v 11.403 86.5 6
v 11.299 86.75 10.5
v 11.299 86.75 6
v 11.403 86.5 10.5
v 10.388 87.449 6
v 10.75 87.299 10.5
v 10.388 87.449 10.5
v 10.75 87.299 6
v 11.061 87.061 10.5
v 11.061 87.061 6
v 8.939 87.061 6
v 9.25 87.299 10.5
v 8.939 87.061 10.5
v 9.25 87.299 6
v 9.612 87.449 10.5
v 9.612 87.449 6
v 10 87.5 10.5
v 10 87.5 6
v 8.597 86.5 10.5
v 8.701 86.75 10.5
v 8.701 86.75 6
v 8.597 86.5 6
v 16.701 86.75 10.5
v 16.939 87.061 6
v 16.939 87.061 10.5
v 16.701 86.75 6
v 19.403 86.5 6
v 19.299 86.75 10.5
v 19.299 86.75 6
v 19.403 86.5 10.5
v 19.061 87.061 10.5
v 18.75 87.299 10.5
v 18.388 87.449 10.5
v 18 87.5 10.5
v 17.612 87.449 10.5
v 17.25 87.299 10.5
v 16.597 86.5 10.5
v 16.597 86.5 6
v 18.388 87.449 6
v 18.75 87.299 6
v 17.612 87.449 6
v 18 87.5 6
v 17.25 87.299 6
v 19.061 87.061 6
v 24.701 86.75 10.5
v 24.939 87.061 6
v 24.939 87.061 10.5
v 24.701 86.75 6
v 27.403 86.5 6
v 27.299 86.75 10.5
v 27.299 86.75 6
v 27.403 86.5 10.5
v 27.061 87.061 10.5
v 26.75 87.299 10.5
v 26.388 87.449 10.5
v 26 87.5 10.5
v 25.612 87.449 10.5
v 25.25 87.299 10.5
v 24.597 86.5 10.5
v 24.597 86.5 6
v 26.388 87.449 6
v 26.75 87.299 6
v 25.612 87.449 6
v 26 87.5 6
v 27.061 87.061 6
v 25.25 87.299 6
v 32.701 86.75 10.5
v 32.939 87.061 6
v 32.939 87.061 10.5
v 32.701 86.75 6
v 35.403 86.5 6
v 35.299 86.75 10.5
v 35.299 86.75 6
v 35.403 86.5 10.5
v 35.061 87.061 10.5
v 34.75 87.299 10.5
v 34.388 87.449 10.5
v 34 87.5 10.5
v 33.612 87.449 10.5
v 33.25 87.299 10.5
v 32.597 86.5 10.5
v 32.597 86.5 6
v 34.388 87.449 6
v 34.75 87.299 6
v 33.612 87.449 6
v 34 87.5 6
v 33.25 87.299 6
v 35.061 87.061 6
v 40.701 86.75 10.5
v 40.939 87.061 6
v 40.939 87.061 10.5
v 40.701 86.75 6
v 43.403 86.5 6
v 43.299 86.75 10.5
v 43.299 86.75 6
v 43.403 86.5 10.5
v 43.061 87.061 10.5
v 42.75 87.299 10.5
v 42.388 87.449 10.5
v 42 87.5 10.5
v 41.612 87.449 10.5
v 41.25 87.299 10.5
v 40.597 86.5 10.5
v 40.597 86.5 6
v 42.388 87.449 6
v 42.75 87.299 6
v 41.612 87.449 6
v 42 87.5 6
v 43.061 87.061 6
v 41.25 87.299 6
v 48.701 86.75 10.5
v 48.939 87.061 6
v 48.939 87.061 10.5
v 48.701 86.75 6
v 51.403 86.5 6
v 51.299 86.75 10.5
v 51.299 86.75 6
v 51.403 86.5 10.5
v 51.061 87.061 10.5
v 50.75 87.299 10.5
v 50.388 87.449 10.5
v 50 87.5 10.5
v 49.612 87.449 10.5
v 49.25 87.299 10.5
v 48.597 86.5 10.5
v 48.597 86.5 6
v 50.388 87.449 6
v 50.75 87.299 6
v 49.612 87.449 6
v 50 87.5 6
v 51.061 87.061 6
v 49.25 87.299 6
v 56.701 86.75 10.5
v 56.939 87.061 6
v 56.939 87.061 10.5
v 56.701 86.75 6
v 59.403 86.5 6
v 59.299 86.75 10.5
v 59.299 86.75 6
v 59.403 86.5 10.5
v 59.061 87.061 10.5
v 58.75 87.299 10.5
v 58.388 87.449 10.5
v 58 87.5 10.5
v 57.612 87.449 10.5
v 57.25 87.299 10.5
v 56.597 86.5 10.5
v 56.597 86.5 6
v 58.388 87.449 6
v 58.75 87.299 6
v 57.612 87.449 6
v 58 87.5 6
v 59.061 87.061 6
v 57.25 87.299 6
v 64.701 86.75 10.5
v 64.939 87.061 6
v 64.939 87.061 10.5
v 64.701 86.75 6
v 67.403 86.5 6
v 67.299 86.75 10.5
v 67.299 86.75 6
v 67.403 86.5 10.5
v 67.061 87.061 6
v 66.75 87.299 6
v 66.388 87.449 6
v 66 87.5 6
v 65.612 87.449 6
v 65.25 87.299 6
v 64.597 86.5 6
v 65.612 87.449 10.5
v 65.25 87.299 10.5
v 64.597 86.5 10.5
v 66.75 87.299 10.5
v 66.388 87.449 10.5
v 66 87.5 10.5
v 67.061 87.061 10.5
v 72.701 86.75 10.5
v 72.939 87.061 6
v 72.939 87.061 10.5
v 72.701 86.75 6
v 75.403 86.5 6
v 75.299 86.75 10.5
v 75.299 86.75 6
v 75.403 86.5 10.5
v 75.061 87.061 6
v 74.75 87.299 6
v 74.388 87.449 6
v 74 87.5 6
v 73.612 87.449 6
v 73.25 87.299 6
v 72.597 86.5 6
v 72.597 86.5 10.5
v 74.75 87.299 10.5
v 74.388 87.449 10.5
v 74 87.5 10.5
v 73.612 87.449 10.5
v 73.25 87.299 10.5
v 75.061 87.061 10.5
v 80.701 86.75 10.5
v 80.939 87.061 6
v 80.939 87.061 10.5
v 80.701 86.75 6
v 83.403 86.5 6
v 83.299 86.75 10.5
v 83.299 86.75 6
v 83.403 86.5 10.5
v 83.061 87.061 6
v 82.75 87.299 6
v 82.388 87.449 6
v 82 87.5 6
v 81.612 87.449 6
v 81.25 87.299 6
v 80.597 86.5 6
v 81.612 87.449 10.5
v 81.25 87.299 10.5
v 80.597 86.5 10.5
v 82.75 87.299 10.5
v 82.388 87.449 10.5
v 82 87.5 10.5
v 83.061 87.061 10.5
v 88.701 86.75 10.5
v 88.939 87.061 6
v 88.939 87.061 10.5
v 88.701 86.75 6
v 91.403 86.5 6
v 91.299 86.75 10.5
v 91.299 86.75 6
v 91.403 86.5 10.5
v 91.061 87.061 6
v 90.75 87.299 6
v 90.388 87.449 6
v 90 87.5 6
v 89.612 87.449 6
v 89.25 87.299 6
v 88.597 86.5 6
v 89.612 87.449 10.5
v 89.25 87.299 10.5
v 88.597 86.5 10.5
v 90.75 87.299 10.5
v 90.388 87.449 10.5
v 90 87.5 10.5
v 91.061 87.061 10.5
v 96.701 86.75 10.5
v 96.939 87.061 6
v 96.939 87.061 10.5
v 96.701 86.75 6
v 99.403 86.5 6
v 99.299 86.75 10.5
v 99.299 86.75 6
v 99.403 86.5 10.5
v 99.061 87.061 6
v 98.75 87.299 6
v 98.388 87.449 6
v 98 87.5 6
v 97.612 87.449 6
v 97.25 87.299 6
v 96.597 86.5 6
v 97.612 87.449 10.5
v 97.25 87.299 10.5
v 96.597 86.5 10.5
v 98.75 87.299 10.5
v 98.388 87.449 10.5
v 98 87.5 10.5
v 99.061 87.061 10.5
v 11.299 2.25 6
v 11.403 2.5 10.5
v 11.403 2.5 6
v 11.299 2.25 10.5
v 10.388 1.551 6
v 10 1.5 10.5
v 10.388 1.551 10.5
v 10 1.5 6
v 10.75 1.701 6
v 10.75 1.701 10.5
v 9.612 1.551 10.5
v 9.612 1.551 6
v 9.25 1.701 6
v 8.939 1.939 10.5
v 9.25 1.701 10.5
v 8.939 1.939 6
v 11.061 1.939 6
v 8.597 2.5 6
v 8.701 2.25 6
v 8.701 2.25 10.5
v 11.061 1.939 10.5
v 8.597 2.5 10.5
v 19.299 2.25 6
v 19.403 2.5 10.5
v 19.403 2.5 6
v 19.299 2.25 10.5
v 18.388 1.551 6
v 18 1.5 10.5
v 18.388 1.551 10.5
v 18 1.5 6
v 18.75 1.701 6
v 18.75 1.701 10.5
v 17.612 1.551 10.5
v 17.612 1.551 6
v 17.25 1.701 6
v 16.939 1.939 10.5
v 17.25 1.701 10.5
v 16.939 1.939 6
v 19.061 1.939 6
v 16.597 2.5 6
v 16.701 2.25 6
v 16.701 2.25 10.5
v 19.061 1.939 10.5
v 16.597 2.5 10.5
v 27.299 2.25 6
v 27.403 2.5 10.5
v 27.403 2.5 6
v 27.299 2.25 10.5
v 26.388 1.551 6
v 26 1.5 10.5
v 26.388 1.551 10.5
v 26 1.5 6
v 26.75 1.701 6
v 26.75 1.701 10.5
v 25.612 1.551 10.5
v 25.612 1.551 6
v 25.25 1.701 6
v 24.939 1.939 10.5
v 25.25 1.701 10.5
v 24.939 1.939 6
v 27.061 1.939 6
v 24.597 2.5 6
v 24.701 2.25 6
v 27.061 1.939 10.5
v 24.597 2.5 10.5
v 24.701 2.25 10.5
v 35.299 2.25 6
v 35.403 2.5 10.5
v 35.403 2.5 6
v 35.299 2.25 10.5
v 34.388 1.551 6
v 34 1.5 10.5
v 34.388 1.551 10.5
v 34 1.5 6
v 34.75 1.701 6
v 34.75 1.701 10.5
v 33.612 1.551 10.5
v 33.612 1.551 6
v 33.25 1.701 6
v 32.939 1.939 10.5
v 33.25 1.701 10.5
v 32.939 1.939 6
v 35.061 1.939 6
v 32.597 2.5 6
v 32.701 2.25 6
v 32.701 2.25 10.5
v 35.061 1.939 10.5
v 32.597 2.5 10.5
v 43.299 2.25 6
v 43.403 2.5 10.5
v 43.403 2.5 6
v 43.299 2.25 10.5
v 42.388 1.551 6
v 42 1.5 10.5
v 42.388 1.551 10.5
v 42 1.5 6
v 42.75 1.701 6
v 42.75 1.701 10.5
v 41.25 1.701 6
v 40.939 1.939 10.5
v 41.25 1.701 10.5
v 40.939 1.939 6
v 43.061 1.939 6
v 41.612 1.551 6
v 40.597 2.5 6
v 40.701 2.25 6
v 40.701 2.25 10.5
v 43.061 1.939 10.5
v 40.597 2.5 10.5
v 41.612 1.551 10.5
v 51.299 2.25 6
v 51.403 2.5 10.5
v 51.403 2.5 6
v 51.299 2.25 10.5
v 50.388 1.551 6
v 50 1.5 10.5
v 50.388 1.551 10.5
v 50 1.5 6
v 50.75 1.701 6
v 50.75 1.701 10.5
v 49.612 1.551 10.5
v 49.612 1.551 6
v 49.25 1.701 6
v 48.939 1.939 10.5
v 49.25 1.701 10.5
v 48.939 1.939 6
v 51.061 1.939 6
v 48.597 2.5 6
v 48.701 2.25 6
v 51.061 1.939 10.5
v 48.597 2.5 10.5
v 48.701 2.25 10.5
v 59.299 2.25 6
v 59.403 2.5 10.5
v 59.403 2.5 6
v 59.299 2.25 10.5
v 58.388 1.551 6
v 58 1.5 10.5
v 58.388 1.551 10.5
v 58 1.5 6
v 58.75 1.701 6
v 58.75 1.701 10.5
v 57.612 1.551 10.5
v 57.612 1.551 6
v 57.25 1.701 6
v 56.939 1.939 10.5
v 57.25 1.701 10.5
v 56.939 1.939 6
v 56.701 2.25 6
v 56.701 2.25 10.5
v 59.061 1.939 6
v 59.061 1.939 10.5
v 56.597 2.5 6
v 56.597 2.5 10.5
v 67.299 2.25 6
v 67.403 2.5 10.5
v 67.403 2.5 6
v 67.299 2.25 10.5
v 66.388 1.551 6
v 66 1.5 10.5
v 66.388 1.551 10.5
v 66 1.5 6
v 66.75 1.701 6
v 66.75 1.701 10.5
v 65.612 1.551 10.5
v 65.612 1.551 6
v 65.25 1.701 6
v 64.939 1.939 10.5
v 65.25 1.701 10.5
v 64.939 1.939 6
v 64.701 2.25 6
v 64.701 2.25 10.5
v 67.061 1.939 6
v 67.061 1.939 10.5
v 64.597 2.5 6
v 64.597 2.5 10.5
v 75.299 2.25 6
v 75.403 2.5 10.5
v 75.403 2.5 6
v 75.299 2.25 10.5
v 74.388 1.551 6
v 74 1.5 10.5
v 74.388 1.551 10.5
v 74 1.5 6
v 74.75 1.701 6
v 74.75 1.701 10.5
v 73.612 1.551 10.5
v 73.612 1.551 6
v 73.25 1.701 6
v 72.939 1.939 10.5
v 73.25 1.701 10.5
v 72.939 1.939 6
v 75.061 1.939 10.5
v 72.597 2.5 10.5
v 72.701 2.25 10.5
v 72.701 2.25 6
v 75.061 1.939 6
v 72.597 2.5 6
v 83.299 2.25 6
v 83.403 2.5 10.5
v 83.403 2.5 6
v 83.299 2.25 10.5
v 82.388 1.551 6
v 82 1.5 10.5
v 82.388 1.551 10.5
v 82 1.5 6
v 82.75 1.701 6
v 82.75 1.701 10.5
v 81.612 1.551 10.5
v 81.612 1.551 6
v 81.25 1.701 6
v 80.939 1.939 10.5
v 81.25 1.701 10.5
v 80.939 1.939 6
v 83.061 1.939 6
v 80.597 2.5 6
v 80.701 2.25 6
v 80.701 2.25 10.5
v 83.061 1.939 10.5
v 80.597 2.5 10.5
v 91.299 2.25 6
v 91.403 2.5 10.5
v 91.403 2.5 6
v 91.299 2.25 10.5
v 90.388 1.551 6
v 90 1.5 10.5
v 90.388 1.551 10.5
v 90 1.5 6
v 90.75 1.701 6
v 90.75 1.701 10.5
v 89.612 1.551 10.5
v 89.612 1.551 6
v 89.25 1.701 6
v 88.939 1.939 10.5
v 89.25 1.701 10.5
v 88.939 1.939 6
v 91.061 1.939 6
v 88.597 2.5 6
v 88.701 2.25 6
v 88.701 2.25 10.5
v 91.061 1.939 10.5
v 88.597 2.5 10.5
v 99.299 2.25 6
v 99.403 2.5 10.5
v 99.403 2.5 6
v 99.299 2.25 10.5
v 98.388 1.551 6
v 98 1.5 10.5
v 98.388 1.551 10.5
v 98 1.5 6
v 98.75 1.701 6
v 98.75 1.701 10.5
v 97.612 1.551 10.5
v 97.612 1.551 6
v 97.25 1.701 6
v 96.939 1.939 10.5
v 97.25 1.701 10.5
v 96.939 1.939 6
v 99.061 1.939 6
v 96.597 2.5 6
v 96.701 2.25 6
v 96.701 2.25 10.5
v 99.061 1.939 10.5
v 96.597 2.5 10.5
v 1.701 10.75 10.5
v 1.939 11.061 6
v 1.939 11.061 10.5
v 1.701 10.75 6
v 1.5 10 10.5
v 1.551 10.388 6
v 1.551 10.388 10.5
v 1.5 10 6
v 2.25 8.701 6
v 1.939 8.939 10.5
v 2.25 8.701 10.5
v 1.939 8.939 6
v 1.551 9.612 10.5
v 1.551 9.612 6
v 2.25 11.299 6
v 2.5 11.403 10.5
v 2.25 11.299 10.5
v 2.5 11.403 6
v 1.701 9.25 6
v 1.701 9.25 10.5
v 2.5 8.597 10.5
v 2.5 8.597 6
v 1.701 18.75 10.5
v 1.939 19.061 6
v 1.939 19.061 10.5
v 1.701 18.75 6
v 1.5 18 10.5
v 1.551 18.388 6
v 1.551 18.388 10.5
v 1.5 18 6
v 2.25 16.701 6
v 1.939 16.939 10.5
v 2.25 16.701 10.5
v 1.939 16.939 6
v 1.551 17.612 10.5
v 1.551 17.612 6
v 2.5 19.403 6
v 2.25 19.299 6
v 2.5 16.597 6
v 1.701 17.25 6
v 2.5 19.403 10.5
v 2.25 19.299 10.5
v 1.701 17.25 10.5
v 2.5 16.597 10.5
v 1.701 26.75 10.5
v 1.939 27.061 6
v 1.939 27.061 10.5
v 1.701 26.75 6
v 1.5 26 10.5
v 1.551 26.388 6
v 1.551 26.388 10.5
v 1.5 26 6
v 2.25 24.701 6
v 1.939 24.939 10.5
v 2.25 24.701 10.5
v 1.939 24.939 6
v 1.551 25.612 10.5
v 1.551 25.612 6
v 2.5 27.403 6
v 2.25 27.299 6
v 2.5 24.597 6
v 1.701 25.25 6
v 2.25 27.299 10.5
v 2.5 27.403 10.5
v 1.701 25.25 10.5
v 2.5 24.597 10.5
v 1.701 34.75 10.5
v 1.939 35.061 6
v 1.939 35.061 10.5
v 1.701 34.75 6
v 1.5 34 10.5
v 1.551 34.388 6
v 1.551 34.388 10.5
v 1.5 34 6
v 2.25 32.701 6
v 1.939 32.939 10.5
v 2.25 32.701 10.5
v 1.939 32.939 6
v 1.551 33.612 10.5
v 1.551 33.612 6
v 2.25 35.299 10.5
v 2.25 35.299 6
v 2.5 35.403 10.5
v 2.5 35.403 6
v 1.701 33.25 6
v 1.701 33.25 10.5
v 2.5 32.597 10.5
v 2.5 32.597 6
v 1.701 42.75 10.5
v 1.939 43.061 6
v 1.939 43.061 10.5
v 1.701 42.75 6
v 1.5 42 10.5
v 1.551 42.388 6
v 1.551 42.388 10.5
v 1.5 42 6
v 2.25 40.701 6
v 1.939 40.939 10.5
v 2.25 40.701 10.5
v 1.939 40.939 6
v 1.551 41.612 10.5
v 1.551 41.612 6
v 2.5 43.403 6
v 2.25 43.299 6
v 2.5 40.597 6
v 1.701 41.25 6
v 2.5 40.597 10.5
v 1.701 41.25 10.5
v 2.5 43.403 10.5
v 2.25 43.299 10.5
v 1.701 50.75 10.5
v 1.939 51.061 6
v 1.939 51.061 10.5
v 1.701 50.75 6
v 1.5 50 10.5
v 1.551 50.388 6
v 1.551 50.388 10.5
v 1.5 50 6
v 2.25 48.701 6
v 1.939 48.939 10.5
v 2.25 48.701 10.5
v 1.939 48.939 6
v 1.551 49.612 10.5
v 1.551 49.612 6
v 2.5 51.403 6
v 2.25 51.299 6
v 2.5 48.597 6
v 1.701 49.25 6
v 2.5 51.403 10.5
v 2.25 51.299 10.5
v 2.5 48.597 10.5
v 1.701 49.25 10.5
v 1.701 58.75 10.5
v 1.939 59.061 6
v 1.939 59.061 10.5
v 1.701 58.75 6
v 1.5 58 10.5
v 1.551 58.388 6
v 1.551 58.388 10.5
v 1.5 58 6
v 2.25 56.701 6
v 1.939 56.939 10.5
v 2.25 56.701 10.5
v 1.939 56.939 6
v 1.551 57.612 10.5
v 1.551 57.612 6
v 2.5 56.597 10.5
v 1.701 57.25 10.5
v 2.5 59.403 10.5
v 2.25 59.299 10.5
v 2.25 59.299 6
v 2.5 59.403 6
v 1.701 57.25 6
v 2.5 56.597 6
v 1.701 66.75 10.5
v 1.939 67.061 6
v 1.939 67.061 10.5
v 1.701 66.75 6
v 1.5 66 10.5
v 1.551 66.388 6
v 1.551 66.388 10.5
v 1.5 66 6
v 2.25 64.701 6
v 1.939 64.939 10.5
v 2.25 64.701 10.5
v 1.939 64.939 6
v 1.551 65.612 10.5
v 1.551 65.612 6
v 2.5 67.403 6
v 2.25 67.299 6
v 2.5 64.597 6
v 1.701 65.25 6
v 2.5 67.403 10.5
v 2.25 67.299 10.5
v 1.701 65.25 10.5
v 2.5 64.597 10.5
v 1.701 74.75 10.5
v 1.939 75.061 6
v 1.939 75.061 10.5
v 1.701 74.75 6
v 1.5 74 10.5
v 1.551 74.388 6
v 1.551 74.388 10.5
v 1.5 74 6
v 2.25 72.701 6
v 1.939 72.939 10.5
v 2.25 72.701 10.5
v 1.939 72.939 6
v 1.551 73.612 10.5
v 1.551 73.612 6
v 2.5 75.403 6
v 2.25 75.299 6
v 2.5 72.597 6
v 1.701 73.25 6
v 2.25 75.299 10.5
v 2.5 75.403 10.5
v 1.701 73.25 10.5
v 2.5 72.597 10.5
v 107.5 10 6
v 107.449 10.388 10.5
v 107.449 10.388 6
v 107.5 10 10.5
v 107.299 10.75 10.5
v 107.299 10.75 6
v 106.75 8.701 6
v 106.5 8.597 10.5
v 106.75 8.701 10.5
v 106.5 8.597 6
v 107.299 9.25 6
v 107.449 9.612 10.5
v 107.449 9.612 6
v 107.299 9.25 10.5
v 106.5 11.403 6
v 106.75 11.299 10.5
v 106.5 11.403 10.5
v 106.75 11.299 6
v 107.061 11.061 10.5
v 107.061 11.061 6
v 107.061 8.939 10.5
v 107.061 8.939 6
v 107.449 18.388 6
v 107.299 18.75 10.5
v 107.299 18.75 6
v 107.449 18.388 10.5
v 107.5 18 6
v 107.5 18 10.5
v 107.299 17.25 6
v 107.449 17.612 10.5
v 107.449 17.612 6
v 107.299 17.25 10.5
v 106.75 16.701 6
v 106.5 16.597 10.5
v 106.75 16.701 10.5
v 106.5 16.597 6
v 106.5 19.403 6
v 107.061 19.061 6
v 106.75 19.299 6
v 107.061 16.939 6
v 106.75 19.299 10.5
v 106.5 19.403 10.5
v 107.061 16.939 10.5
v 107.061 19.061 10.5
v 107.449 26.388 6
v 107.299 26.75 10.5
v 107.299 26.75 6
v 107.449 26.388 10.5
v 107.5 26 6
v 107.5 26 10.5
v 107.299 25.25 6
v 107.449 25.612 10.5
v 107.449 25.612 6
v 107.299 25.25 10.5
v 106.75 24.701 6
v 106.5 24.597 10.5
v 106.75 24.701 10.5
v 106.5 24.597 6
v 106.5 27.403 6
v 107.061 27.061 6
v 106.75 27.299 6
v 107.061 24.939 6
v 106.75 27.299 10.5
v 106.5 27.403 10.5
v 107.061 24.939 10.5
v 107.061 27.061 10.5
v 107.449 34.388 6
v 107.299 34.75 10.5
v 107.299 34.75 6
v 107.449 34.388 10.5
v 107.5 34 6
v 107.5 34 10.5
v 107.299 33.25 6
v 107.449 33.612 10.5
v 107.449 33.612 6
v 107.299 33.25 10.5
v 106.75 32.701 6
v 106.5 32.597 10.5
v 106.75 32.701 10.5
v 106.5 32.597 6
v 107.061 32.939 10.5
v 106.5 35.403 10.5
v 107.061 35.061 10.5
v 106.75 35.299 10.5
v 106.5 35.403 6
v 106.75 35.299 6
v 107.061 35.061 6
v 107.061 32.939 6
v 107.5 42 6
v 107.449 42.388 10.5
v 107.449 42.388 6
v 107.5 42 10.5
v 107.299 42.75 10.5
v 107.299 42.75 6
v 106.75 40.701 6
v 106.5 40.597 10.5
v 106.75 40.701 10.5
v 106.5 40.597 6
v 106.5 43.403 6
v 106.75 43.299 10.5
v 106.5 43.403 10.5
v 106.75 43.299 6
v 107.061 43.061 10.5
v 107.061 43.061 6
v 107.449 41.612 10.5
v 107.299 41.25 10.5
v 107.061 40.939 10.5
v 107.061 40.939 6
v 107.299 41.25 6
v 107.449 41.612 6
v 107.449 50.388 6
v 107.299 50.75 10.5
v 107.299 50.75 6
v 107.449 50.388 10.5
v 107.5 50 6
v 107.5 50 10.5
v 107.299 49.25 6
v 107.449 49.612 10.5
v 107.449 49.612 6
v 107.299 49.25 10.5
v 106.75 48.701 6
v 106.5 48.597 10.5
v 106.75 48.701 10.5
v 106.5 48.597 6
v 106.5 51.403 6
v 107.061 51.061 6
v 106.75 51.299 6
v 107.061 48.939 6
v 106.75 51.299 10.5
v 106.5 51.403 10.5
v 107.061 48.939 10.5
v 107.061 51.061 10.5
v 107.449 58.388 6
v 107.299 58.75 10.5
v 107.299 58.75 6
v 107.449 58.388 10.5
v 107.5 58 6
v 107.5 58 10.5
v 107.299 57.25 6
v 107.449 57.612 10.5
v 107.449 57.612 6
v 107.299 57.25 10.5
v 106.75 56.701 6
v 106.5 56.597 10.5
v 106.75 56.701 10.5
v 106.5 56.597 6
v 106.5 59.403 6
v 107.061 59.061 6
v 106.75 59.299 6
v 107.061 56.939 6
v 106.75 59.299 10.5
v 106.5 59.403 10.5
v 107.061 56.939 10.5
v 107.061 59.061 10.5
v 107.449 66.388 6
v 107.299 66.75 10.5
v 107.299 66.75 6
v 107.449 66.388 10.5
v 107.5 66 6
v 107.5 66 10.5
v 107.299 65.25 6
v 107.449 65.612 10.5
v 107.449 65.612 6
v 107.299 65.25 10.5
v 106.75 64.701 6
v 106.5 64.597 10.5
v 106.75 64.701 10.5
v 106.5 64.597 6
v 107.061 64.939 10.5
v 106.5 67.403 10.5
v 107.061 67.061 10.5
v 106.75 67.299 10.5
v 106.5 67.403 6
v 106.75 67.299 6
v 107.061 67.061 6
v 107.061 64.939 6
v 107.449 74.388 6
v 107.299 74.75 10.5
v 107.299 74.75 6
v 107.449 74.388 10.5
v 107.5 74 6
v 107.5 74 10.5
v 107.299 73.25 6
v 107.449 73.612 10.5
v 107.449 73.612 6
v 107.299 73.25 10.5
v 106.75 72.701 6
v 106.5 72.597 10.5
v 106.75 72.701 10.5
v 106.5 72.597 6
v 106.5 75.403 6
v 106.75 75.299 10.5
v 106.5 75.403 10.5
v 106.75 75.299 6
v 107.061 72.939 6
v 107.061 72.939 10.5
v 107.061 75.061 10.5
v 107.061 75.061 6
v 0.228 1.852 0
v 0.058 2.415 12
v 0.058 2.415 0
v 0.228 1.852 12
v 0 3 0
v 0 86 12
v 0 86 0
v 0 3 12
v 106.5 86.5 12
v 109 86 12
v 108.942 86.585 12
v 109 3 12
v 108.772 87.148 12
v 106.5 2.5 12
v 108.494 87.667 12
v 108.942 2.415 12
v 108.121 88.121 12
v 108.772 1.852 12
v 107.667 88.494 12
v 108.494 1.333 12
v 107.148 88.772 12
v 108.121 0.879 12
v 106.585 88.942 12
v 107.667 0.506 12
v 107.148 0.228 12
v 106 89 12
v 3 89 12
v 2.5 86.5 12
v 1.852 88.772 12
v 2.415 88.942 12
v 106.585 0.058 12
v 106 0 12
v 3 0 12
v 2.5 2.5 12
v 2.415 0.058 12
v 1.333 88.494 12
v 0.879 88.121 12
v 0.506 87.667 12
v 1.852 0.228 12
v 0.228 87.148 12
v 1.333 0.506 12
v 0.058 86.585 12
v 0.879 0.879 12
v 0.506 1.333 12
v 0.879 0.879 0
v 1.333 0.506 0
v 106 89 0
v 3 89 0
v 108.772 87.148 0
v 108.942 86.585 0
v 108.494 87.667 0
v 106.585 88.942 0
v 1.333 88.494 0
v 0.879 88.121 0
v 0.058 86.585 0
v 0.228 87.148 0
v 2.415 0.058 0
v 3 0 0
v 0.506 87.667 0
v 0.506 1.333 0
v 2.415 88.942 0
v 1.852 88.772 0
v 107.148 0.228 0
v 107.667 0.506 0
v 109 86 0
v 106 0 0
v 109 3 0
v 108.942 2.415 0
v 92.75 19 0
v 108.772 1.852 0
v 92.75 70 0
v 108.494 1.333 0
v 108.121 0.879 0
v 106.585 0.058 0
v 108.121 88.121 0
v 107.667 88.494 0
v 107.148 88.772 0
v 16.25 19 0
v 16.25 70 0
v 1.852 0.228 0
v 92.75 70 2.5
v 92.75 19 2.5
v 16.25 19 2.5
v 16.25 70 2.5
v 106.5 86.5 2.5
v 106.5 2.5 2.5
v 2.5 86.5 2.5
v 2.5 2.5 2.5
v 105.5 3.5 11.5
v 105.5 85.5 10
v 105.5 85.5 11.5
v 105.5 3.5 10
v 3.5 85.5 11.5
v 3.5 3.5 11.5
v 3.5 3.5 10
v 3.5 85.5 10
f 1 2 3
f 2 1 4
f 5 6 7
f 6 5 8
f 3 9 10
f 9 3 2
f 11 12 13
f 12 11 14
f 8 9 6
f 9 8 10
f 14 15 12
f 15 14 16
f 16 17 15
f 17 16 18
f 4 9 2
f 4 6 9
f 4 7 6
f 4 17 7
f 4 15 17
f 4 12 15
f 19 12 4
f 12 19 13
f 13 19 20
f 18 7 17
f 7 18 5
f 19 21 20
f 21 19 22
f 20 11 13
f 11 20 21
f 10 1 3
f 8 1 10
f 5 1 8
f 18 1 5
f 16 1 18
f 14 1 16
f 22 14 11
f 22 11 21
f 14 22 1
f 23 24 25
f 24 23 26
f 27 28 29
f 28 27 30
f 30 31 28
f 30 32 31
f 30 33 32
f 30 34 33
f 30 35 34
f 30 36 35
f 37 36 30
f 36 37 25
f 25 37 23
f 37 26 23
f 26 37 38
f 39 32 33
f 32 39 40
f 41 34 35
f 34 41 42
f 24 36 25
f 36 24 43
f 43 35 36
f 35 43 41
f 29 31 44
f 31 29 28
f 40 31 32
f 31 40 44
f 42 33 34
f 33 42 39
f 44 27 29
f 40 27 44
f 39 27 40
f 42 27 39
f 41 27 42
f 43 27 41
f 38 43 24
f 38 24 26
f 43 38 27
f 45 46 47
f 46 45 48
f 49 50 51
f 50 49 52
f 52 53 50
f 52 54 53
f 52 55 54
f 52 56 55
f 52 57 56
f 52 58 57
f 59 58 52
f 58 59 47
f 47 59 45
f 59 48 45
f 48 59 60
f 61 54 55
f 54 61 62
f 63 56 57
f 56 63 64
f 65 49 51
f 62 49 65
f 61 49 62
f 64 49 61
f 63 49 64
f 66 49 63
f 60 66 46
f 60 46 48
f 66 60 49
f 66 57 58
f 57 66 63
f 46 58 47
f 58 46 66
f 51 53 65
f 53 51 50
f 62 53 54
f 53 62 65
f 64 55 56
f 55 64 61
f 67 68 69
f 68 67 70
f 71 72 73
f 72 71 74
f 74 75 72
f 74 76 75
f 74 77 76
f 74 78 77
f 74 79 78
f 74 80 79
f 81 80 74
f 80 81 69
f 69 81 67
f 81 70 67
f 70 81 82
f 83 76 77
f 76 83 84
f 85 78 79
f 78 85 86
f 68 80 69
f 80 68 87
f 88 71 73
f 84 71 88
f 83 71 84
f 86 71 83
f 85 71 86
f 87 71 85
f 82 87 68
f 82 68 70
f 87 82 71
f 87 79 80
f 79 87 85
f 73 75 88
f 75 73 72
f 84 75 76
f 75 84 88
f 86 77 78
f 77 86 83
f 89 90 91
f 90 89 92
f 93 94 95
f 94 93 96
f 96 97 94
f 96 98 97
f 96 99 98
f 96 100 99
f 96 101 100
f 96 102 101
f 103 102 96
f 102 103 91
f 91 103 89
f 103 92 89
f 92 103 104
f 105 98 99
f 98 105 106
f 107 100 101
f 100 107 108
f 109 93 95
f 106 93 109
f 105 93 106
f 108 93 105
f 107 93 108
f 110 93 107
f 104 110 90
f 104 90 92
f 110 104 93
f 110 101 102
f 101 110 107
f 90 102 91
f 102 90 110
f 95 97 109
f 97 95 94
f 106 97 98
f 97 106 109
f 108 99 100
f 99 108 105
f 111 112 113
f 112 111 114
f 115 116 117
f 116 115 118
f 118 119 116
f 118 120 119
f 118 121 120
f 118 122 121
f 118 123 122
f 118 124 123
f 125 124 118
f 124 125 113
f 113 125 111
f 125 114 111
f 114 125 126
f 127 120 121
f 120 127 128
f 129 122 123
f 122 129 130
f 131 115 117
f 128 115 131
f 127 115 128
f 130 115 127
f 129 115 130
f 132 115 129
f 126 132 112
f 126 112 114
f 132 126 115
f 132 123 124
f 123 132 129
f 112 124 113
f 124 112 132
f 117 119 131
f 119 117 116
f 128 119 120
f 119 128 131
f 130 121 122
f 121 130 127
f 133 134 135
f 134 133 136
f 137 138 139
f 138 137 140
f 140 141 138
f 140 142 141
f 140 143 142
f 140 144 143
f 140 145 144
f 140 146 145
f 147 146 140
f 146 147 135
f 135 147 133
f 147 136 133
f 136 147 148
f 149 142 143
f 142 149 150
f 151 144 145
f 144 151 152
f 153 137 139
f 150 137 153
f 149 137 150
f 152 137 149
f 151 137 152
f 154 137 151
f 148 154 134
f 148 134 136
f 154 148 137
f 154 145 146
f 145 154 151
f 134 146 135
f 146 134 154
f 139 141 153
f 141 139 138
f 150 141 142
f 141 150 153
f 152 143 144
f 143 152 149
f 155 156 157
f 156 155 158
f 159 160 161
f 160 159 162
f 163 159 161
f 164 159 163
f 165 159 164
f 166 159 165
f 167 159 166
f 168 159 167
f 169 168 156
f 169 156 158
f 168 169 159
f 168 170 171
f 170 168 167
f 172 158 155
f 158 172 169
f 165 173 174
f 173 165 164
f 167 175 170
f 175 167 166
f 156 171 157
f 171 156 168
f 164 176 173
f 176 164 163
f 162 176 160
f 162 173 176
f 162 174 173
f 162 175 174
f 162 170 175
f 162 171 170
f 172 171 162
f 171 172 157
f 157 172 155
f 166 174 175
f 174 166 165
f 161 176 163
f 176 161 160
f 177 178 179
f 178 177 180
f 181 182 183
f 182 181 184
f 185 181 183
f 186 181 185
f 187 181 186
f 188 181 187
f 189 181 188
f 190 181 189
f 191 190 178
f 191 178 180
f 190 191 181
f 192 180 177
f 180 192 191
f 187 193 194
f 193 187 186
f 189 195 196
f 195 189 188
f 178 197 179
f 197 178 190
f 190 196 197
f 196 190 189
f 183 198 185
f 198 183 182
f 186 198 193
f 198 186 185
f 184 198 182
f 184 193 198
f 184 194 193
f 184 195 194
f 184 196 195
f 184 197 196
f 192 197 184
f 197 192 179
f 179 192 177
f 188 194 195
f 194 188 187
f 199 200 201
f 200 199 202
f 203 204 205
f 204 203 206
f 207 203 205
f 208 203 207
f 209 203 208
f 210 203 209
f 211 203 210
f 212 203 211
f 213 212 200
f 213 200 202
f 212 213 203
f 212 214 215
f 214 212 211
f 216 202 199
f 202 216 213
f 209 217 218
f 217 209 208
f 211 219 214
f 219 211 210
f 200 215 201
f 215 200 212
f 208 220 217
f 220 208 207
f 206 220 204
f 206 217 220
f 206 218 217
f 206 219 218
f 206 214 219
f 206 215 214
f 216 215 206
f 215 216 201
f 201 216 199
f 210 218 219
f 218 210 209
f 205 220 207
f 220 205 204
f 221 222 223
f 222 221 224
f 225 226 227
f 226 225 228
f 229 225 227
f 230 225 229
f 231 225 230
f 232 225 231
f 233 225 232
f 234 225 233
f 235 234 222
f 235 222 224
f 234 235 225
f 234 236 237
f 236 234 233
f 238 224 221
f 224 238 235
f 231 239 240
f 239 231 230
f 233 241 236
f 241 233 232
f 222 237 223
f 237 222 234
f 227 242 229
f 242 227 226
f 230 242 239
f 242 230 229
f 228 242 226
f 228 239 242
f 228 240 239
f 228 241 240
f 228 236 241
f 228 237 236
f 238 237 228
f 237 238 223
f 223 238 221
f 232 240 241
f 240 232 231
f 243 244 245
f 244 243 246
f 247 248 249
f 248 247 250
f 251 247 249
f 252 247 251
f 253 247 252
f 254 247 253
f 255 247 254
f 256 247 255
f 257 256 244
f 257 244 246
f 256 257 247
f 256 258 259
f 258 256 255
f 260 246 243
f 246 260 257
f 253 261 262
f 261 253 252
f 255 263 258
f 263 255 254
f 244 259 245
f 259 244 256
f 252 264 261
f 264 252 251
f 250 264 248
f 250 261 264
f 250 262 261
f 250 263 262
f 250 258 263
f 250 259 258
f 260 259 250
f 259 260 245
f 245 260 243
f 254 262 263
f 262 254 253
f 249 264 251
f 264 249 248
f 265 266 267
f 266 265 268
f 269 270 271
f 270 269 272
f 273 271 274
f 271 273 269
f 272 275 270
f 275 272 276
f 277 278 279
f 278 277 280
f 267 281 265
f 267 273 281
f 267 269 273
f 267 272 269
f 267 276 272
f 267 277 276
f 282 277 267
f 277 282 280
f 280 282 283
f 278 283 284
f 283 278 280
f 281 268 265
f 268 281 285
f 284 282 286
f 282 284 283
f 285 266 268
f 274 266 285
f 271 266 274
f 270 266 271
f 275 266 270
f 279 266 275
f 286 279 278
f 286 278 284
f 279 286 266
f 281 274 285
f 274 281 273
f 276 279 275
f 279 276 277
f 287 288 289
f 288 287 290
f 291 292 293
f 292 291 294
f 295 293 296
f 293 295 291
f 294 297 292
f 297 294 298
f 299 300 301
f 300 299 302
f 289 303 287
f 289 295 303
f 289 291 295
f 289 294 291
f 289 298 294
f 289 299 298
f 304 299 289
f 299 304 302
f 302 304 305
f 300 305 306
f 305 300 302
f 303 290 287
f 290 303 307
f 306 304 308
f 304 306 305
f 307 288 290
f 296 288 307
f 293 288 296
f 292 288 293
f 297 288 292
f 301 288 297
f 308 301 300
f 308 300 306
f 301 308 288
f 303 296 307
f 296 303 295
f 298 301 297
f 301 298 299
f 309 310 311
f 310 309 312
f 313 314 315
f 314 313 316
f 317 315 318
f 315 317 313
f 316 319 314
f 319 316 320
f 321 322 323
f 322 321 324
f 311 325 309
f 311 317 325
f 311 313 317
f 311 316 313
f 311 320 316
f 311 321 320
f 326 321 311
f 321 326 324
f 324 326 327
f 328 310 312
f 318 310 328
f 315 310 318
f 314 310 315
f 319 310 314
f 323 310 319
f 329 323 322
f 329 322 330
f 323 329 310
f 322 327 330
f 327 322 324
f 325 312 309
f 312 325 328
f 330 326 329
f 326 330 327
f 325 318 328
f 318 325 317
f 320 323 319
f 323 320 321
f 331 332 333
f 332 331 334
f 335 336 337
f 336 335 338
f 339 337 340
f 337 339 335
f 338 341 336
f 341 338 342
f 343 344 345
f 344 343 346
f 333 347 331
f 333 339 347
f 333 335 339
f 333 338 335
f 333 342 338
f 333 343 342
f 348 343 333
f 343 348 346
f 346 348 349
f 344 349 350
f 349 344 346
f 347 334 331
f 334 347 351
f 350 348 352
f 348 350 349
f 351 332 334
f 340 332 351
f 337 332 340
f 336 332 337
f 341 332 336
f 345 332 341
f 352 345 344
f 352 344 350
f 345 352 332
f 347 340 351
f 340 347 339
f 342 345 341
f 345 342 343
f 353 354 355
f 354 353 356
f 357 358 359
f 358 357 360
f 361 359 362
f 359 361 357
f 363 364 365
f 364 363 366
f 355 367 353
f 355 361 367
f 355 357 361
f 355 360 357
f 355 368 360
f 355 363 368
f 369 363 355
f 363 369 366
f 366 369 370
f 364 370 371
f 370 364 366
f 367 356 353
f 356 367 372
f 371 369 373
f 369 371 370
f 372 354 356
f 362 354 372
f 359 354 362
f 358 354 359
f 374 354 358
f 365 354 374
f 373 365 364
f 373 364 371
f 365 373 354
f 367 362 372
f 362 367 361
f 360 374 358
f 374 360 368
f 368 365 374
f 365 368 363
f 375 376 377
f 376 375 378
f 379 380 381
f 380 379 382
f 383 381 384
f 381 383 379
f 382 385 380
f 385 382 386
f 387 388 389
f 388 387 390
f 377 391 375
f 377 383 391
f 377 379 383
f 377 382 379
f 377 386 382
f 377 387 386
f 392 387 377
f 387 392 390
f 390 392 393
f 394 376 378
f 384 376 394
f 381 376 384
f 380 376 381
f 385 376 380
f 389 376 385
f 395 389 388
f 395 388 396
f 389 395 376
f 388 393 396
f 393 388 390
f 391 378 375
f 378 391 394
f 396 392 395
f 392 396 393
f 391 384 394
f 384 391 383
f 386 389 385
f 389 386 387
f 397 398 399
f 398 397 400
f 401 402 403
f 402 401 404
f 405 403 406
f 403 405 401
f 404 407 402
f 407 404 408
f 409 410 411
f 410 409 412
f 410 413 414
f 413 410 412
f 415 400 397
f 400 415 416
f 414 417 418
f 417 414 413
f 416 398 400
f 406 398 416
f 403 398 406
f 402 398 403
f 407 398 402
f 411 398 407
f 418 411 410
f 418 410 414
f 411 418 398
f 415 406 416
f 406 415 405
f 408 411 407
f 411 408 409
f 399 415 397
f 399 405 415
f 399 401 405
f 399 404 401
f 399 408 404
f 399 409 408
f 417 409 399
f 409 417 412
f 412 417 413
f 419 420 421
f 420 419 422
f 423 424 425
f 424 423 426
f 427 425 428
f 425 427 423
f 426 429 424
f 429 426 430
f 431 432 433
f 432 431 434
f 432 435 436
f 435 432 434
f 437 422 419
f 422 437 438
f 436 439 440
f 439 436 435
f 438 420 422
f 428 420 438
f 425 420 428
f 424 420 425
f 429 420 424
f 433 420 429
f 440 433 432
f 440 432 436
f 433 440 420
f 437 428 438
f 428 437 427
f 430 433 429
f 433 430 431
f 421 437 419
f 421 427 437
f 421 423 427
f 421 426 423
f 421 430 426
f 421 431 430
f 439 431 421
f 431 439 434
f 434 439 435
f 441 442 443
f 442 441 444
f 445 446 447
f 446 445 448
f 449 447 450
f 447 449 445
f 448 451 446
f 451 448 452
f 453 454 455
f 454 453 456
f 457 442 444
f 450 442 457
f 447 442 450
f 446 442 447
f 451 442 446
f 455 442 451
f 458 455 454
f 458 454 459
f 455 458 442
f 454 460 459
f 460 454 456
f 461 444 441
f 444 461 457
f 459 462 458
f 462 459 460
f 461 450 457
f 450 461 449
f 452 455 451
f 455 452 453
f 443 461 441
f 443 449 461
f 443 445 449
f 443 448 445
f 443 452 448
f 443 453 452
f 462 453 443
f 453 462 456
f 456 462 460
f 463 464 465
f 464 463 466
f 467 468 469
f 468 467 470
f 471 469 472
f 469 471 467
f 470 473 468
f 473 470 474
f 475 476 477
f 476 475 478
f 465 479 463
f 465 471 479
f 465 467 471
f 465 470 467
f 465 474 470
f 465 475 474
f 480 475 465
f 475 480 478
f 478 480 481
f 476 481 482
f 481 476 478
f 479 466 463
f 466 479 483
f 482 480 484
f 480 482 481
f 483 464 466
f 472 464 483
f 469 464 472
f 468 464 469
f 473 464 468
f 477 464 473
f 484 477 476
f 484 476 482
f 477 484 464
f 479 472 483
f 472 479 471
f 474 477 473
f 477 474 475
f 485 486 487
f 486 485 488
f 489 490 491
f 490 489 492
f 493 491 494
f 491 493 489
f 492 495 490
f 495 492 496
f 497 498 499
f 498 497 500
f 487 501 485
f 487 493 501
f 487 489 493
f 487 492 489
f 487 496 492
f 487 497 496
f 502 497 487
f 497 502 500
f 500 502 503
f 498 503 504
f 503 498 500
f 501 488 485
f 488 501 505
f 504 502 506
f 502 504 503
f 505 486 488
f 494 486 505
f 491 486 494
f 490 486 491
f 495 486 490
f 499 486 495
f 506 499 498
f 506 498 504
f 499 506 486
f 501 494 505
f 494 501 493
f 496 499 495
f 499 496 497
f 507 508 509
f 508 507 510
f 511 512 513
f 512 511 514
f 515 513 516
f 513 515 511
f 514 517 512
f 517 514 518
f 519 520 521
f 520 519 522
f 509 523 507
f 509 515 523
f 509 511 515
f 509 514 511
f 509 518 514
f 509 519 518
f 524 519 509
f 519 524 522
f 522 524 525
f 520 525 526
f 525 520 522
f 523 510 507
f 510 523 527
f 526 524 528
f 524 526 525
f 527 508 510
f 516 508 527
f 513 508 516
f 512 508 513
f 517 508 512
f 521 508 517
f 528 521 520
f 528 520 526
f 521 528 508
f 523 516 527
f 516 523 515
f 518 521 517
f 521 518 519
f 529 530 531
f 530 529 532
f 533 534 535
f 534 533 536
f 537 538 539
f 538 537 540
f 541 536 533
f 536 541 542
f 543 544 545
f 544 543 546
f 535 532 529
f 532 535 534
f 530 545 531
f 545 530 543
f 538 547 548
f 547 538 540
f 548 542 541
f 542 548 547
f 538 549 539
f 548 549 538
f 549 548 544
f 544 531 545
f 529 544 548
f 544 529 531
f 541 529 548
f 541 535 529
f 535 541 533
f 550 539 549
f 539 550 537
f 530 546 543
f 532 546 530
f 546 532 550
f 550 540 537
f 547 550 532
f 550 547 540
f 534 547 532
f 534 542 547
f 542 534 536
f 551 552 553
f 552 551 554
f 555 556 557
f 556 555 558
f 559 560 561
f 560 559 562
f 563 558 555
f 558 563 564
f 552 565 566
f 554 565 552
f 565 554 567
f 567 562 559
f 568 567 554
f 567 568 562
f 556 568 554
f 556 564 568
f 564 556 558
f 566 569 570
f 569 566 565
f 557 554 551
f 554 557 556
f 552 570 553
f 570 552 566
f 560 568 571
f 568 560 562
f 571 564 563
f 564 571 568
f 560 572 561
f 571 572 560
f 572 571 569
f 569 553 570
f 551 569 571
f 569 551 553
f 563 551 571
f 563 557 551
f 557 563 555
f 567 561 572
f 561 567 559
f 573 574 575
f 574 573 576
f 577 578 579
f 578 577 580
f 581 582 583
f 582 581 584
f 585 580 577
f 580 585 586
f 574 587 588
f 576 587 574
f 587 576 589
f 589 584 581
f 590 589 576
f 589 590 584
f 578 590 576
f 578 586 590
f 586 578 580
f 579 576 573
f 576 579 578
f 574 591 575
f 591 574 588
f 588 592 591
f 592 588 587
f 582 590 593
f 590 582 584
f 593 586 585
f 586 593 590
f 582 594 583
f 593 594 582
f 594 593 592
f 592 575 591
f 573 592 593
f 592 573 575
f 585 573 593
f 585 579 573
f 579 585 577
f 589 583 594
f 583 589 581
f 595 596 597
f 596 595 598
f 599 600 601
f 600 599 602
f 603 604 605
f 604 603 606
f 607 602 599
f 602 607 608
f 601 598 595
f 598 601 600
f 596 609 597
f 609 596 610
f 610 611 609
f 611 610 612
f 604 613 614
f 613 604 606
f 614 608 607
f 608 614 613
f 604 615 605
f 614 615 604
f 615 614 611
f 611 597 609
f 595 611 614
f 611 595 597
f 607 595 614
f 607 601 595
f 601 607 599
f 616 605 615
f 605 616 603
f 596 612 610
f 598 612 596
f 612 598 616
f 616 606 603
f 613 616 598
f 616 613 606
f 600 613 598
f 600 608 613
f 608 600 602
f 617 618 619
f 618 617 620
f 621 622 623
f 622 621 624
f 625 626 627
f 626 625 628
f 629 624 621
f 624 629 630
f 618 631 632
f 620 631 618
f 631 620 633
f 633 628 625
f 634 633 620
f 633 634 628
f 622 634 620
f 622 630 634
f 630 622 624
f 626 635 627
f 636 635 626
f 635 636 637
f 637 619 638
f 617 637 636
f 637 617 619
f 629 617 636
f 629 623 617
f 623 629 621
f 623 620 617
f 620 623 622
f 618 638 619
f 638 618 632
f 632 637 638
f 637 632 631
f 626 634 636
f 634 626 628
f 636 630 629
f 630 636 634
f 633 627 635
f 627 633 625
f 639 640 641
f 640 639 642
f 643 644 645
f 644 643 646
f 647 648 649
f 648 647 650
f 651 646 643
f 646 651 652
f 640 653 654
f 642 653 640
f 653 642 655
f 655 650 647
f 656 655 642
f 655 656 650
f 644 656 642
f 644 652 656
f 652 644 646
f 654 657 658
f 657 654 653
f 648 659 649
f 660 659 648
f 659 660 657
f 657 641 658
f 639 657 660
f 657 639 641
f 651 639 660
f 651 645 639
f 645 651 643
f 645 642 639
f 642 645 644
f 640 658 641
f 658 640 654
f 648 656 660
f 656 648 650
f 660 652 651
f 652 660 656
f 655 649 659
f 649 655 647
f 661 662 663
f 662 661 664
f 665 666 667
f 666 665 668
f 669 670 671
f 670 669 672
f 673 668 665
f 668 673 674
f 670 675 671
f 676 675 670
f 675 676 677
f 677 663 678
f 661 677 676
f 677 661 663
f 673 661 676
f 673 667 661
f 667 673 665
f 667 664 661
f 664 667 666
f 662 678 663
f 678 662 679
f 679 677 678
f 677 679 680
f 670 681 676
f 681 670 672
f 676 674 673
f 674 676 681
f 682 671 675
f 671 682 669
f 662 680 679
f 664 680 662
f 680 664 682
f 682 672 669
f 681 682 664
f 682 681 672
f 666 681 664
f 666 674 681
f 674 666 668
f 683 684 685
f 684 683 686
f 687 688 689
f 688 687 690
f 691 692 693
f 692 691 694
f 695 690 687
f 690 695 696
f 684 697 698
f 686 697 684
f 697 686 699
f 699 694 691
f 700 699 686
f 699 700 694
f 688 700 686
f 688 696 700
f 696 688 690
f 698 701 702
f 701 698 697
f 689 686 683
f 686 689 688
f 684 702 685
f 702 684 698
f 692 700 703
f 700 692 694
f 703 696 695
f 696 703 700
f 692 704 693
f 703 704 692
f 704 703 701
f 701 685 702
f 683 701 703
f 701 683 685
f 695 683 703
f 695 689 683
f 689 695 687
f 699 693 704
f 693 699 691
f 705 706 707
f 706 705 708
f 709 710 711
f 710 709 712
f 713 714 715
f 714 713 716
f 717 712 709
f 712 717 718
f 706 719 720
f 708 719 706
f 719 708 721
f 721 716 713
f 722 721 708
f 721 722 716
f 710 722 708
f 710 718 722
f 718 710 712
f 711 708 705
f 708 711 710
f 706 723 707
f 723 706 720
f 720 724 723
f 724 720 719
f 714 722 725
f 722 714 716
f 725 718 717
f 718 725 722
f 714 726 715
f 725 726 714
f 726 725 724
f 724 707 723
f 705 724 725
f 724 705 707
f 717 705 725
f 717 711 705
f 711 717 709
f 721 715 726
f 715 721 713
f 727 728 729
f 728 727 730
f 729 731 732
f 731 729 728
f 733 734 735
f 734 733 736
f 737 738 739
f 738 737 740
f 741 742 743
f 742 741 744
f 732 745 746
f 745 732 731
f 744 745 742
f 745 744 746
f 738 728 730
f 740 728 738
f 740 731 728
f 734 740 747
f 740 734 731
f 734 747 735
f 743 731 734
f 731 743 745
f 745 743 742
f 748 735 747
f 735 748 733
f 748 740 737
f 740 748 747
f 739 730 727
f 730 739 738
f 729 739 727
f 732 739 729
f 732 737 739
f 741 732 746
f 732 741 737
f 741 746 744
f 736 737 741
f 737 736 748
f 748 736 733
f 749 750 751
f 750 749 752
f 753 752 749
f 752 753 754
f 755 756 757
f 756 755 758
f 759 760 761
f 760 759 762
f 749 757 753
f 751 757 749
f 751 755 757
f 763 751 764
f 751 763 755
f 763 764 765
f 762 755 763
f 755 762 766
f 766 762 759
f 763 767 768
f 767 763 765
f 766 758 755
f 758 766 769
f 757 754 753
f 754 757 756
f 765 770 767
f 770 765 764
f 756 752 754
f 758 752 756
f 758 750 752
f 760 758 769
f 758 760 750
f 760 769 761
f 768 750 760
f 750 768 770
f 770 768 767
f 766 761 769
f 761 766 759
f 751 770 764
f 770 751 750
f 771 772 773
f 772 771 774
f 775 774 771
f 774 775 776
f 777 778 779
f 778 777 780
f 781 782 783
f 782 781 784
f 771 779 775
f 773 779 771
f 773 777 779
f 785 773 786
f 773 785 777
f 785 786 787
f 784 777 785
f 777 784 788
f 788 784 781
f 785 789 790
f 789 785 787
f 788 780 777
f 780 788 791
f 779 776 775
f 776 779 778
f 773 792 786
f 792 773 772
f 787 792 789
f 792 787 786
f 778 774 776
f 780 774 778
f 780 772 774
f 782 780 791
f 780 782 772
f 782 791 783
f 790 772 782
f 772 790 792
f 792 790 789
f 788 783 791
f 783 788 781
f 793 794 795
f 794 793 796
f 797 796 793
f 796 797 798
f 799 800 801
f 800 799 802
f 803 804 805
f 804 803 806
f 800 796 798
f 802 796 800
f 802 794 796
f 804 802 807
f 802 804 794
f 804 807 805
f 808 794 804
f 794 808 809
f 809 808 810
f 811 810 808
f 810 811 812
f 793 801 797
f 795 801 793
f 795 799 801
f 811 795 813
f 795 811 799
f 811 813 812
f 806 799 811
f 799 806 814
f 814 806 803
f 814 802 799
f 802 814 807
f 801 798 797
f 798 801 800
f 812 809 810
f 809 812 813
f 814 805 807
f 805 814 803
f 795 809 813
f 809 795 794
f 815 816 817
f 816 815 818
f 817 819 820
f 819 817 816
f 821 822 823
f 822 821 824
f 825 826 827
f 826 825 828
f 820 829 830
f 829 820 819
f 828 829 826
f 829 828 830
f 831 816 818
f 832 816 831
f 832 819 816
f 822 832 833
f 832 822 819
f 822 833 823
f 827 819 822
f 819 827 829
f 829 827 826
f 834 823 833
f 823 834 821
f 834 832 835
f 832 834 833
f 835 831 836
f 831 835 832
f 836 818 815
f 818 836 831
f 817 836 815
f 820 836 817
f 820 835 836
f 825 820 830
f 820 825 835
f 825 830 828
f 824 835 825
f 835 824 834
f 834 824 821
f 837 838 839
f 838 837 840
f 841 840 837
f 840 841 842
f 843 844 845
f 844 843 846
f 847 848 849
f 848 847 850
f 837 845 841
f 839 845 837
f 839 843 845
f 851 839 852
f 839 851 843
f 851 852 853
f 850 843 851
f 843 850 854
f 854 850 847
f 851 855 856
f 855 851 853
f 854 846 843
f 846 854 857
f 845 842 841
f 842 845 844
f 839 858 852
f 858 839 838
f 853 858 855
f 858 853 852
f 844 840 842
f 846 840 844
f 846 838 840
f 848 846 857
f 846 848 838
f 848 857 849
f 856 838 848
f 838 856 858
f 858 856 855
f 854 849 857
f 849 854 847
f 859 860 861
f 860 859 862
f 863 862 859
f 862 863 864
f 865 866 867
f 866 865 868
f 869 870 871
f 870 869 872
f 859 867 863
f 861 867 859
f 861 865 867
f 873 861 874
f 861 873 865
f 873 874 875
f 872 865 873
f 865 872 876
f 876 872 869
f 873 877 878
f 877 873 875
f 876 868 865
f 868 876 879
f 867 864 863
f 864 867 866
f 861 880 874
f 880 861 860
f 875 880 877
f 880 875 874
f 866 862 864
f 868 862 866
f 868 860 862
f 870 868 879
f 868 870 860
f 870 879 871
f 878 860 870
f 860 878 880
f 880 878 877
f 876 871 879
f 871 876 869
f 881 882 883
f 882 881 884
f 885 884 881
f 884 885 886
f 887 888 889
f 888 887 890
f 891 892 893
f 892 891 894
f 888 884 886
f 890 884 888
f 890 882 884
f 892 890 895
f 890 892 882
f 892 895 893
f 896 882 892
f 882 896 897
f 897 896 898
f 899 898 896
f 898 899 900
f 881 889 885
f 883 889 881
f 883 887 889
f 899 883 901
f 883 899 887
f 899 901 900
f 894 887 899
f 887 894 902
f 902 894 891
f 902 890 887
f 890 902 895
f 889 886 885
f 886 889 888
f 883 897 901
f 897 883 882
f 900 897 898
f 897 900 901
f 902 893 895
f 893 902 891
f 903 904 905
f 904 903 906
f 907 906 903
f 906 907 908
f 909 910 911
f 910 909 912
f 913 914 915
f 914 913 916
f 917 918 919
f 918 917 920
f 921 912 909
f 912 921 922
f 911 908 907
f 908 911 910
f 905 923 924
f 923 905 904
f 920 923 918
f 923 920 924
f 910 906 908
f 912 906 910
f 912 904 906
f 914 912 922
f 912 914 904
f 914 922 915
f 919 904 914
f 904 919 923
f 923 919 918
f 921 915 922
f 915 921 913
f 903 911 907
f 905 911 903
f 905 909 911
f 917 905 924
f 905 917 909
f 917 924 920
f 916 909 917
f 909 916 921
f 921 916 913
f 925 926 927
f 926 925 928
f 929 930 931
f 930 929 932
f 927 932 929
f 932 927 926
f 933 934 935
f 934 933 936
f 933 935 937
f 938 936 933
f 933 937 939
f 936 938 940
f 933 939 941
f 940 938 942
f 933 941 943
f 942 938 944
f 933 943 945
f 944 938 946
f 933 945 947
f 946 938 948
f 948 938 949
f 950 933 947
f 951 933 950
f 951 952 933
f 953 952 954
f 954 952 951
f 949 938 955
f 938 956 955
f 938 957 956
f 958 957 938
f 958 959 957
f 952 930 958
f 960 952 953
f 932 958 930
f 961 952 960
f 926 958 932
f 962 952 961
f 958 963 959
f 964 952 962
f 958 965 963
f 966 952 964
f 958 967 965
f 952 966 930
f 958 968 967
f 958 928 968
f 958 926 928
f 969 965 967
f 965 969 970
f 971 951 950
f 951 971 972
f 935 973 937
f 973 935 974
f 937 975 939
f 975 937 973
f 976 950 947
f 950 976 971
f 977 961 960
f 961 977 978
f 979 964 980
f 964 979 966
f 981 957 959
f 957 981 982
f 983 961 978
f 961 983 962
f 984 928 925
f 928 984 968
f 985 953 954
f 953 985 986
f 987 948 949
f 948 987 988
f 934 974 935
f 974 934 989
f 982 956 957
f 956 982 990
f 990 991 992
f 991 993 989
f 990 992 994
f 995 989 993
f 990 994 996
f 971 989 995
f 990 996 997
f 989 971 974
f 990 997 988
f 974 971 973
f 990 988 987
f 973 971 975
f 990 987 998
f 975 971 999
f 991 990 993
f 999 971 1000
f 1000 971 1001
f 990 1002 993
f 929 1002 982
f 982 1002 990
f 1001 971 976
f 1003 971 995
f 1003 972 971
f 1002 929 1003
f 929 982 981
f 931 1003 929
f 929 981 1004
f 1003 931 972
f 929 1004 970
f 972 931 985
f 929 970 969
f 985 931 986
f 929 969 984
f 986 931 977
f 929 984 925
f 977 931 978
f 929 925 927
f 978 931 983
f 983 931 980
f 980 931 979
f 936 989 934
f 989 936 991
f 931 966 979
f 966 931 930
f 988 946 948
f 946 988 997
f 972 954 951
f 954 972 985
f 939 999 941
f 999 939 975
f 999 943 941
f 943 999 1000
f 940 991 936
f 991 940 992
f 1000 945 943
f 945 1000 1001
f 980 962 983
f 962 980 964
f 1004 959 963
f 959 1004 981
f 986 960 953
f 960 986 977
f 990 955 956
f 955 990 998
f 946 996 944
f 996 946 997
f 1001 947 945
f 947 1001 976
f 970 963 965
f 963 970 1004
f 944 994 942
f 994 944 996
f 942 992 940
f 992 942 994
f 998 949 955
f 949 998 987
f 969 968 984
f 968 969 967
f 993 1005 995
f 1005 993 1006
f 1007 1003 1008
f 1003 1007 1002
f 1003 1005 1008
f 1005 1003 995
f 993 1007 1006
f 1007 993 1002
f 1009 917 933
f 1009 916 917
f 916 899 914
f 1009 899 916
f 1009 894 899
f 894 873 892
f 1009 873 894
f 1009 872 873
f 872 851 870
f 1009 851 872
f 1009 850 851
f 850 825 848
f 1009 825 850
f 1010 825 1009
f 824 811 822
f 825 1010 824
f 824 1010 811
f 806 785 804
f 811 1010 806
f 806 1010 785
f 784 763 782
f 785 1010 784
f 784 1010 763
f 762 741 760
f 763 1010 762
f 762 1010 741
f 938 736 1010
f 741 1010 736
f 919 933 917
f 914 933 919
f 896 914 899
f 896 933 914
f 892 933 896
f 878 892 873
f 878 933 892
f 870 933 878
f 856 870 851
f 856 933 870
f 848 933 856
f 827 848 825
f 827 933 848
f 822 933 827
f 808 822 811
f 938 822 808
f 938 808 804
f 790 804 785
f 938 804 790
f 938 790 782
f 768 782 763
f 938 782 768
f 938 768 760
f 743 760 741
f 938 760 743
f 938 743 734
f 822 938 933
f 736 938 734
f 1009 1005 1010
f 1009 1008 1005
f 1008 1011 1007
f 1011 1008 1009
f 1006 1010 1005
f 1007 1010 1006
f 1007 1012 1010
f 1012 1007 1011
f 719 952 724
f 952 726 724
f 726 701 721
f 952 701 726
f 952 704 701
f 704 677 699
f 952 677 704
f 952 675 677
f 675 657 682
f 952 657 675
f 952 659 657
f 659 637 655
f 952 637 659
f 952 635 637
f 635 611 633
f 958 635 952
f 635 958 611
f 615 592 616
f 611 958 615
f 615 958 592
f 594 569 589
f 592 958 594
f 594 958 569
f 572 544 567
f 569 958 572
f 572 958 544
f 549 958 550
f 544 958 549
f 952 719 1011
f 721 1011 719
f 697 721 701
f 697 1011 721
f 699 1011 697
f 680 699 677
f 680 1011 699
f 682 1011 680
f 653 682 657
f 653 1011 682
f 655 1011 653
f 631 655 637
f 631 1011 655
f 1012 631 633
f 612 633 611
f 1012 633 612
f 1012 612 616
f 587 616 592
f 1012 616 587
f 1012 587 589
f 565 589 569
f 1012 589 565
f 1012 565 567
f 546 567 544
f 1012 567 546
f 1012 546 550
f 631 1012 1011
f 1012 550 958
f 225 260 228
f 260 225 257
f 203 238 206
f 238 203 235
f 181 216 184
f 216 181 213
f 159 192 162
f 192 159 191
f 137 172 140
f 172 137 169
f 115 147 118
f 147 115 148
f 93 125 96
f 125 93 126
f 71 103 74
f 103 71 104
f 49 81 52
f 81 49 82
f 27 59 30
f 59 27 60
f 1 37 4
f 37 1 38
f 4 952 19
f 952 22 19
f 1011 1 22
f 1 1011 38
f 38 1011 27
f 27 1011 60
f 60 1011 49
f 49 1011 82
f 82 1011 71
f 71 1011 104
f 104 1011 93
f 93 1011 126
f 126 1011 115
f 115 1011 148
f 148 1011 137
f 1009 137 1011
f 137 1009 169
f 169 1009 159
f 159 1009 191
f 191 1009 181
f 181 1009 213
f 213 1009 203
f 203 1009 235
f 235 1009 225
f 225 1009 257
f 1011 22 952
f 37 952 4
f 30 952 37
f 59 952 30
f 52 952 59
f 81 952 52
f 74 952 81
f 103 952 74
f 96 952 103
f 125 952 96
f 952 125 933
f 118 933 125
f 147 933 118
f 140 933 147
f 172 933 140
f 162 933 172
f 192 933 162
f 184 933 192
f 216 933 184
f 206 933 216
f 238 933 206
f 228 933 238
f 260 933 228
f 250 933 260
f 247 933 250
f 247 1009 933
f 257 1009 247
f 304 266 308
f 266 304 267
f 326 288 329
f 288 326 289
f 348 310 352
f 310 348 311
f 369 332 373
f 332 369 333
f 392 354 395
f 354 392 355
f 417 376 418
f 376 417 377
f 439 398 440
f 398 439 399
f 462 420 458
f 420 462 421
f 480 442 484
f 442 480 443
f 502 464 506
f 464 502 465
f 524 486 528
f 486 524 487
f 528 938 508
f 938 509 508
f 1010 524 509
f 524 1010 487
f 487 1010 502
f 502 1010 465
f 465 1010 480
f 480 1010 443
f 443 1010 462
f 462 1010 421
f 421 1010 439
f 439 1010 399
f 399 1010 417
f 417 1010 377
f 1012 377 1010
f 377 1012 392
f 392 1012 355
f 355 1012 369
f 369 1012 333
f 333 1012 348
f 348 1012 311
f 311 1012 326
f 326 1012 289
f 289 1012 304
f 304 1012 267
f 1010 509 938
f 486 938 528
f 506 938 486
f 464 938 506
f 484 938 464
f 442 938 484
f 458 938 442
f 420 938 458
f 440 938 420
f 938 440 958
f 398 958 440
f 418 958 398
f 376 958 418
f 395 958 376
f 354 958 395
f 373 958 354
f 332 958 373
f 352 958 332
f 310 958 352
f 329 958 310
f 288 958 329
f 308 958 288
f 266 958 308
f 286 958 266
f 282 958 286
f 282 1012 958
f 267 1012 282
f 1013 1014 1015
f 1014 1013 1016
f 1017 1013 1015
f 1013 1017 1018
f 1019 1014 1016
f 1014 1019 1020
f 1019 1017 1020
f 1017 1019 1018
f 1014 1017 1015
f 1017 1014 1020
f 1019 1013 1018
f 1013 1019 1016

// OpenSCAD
// ESP32 Simple Thermostat 3D Printable Case - FRONT BEZEL
// Adapted from Honeywell UWP style mounting
// Display opening and PCB retainer
// License: GPL v3

// ===== USER ADJUSTABLE PARAMETERS =====

// PCB dimensions
pcb_width = 100;           // Width of PCB in mm
pcb_height = 80;           // Height of PCB in mm
pcb_thickness = 1.6;       // Standard PCB thickness

// Display dimensions (3.2" TFT)
display_width = 76.5;      // Active display area width
display_height = 51;       // Active display area height
display_bezel = 2;         // Bezel around display

// Case dimensions
wall_thickness = 2.5;      // Case wall thickness
case_depth_front = 12;     // Front bezel depth
corner_radius = 3;         // Rounded corners
pcb_clearance = 2;         // Space between PCB and walls

// Mounting hardware
case_couple_dia = 3.5;     // M3 coupling screws between front/back

// ===== CALCULATED DIMENSIONS =====

case_width = pcb_width + (pcb_clearance * 2) + (wall_thickness * 2);
case_height = pcb_height + (pcb_clearance * 2) + (wall_thickness * 2);

// ===== MODULES =====

// Rounded rectangle (2D)
module rounded_rect(w, h, r) {
    hull() {
        translate([r, r, 0]) circle(r=r, $fn=32);
        translate([w-r, r, 0]) circle(r=r, $fn=32);
        translate([r, h-r, 0]) circle(r=r, $fn=32);
        translate([w-r, h-r, 0]) circle(r=r, $fn=32);
    }
}

// ===== FRONT BEZEL - Display opening and PCB retainer =====
module case_front() {
    difference() {
        // Main front housing
        linear_extrude(height=case_depth_front)
            rounded_rect(case_width, case_height, corner_radius);
        
        // Display opening
        display_x = (case_width - display_width) / 2;
        display_y = (case_height - display_height) / 2;
        translate([display_x, display_y, -1])
            cube([display_width, display_height, case_depth_front + 2]);
        
        // Interior pocket for PCB
        translate([wall_thickness, wall_thickness, wall_thickness])
            cube([case_width - wall_thickness*2, 
                  case_height - wall_thickness*2, 
                  case_depth_front - wall_thickness + 1]);
        
        // Ventilation holes all around the perimeter (small holes)
        vent_dia = 3;
        vent_spacing = 8;
        
        // Top ventilation
        for (i = [0:floor((case_width - 20)/vent_spacing)]) {
            translate([10 + i*vent_spacing, case_height - 3, case_depth_front/2])
                cylinder(h=wall_thickness+2, d=vent_dia, $fn=24);
        }
        
        // Bottom ventilation
        for (i = [0:floor((case_width - 20)/vent_spacing)]) {
            translate([10 + i*vent_spacing, 3, case_depth_front/2])
                cylinder(h=wall_thickness+2, d=vent_dia, $fn=24);
        }
        
        // Left side ventilation
        for (i = [0:floor((case_height - 20)/vent_spacing)]) {
            translate([3, 10 + i*vent_spacing, case_depth_front/2])
                cylinder(h=wall_thickness+2, d=vent_dia, $fn=24);
        }
        
        // Right side ventilation
        for (i = [0:floor((case_height - 20)/vent_spacing)]) {
            translate([case_width - 3, 10 + i*vent_spacing, case_depth_front/2])
                cylinder(h=wall_thickness+2, d=vent_dia, $fn=24);
        }
        
        // Coupling screw holes (M3) - top and bottom
        translate([case_width/2, 5, case_depth_front/2])
            cylinder(h=case_depth_front+2, r=case_couple_dia/2, $fn=24);
        translate([case_width/2, case_height - 5, case_depth_front/2])
            cylinder(h=case_depth_front+2, r=case_couple_dia/2, $fn=24);
    }
    
    // Inner lips to help position back piece
    lip_depth = 2;
    lip_height = 1.5;
    translate([wall_thickness + 1, wall_thickness + 1, case_depth_front - lip_depth])
        cube([case_width - wall_thickness*2 - 2, 
              case_height - wall_thickness*2 - 2, 
              lip_height]);
}

// ===== RENDER =====
case_front();

// ===== ASSEMBLY INSTRUCTIONS =====
// 
// PRINTING:
// - Print with supports under display bezel
// - Use 0.4mm nozzle, 0.2mm layer height, 20% infill
//
// HARDWARE NEEDED (for front piece):
// - 2x M3 screws (12mm) for coupling to back
// - 2x M3 heat inserts for coupling
//
// ASSEMBLY:
// 1. Install M3 heat inserts in coupling screw holes
// 2. After back piece is mounted to wall with PCB installed,
//    align front piece with back piece and secure with M3 screws
